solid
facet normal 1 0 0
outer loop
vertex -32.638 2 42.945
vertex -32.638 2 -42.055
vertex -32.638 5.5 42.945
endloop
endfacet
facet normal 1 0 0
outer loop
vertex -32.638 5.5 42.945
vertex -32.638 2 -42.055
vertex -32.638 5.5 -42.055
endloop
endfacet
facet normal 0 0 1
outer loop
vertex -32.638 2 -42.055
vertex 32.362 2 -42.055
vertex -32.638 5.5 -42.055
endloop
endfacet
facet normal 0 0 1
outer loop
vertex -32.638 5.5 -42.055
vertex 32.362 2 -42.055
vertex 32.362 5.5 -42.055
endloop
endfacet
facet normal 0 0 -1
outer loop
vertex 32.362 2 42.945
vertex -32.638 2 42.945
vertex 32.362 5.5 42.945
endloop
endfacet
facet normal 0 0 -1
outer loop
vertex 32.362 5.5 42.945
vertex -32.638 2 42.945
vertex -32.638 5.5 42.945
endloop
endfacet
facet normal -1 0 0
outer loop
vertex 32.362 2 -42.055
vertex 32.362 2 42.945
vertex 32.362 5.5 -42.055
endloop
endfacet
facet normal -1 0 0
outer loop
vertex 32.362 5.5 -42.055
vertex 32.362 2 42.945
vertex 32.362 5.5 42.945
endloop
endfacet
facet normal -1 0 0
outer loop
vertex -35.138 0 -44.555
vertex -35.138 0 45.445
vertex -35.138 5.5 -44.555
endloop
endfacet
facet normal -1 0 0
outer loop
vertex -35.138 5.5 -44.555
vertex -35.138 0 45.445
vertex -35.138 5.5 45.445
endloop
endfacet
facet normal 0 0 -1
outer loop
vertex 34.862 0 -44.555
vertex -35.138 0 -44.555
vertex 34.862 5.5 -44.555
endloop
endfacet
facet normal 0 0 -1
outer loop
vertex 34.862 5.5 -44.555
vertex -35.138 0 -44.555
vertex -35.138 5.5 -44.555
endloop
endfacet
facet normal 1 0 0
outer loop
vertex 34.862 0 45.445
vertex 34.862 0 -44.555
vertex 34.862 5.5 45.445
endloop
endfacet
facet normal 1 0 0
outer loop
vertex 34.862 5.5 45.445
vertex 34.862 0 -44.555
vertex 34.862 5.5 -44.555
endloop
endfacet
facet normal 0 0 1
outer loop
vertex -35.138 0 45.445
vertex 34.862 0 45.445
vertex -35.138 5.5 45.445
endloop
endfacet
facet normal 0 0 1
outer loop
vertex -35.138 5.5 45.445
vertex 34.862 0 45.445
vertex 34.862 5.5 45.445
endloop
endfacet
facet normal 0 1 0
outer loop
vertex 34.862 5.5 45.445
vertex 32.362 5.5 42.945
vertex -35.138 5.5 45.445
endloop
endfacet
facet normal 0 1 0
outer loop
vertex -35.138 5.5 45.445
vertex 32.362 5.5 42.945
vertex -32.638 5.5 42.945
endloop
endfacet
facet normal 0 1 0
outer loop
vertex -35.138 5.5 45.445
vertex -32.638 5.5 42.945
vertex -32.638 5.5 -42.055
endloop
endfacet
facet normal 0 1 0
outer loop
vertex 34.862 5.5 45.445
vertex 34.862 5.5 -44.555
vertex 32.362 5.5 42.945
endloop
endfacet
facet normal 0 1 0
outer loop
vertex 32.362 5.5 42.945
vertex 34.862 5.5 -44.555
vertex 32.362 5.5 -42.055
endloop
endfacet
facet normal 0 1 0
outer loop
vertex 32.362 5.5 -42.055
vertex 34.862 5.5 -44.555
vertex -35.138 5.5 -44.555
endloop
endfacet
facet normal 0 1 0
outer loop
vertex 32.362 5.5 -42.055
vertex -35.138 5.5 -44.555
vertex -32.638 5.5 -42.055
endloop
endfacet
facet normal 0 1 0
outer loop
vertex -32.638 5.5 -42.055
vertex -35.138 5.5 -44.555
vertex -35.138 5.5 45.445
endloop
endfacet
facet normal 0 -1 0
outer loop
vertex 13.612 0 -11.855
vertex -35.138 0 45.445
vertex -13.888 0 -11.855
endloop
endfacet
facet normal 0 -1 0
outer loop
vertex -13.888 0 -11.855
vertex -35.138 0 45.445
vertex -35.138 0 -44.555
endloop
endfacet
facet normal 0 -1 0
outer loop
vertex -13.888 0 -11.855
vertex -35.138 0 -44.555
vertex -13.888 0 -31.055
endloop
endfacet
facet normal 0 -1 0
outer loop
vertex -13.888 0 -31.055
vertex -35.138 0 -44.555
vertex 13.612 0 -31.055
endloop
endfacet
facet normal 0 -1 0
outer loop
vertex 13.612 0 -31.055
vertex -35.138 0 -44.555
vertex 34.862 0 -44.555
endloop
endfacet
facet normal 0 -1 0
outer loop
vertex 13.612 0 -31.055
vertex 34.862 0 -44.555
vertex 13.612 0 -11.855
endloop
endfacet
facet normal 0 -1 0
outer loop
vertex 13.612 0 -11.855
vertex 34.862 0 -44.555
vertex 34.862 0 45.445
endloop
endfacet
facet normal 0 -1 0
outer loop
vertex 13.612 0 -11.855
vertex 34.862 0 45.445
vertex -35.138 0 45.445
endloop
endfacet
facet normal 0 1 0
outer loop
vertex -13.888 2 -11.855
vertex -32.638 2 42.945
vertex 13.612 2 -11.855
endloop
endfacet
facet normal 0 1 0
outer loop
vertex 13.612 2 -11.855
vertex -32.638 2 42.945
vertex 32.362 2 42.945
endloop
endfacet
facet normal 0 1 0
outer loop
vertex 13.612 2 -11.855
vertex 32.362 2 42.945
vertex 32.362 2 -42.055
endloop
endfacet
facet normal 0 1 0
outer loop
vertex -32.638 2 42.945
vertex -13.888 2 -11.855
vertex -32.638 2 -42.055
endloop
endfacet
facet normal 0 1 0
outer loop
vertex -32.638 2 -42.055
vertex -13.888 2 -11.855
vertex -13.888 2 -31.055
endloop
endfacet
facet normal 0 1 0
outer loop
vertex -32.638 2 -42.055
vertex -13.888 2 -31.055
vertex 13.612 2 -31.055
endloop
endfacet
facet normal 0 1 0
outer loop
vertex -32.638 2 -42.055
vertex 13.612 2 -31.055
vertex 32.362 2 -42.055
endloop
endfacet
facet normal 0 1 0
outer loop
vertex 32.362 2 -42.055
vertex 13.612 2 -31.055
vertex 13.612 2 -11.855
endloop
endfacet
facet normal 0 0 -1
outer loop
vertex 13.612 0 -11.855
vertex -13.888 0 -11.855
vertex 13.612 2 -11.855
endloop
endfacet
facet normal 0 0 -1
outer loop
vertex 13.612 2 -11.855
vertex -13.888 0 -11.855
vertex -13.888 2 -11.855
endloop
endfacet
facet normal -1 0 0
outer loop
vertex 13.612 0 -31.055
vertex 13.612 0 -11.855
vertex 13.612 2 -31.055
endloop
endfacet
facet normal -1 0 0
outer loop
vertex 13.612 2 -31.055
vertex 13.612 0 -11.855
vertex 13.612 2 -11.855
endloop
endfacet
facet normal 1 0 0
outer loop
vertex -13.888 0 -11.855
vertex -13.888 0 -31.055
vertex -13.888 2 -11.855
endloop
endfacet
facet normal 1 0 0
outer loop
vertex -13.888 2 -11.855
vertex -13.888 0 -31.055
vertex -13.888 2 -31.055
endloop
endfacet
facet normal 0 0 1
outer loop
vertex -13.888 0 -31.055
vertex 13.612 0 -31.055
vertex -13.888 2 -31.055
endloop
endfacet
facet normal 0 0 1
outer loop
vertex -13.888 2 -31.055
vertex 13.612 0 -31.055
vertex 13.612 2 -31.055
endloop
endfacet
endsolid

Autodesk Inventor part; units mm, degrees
ref_plane "YZ Plane" through (0, 0, 0) normal (1, 0, 0) x (0, 1, 0)
ref_plane "XZ Plane" through (0, 0, 0) normal (0, 1, 0) x (-1, 0, 0)
ref_plane "XY Plane" through (0, 0, 0) normal (0, 0, 1) x (1, 0, 0)
sketch "Sketch1" plane through (0, 0, 0) normal (0, 1, 0) x (-1, 0, 0)
  line L0 (32.6378, 42.945) -> (-32.3622, 42.945)
  line L1 (32.6378, 42.945) -> (32.6378, -42.055)
  line L2 (32.6378, -42.055) -> (-32.3622, -42.055)
  line L3 (-32.3622, -42.055) -> (-32.3622, 42.945)
  line L4 (-34.8622, 45.445) -> (35.1378, 45.445)
  line L5 (35.1378, -44.555) -> (-34.8622, -44.555)
  line L6 (35.1378, -44.555) -> (35.1378, 45.445)
  line L7 (-34.8622, -44.555) -> (-34.8622, 45.445)
  point P0 (0, 0)
  dimension "d0" = 65
  dimension "d1" = 85
  dimension "d6" = 70
  dimension "d7" = 90
extrude "Extrusion1" add sketch "Sketch1" along normal blind 2 contours L1 L2 L3 L0
extrude "Extrusion2" add sketch "Sketch1" along normal blind 5.5
sketch "Sketch2" plane through (0, 2, 0) normal (0, 1, 0) x (1, 0, 0)
  line L0 (32.3622, 42.055) -> (-32.6378, 42.055) projected
  line L1 (13.6122, 31.055) -> (13.6122, 11.855)
  line L2 (13.6122, 11.855) -> (-13.8878, 11.855)
  line L3 (-13.8878, 11.855) -> (-13.8878, 31.055)
  line L4 (-13.8878, 31.055) -> (13.6122, 31.055)
  point P0 (0, 0)
  dimension "d15" = 19.2
  dimension "d16" = 27.5
extrude "Extrusion3" cut sketch "Sketch2" against normal blind 5
properties part number "Tampa"
